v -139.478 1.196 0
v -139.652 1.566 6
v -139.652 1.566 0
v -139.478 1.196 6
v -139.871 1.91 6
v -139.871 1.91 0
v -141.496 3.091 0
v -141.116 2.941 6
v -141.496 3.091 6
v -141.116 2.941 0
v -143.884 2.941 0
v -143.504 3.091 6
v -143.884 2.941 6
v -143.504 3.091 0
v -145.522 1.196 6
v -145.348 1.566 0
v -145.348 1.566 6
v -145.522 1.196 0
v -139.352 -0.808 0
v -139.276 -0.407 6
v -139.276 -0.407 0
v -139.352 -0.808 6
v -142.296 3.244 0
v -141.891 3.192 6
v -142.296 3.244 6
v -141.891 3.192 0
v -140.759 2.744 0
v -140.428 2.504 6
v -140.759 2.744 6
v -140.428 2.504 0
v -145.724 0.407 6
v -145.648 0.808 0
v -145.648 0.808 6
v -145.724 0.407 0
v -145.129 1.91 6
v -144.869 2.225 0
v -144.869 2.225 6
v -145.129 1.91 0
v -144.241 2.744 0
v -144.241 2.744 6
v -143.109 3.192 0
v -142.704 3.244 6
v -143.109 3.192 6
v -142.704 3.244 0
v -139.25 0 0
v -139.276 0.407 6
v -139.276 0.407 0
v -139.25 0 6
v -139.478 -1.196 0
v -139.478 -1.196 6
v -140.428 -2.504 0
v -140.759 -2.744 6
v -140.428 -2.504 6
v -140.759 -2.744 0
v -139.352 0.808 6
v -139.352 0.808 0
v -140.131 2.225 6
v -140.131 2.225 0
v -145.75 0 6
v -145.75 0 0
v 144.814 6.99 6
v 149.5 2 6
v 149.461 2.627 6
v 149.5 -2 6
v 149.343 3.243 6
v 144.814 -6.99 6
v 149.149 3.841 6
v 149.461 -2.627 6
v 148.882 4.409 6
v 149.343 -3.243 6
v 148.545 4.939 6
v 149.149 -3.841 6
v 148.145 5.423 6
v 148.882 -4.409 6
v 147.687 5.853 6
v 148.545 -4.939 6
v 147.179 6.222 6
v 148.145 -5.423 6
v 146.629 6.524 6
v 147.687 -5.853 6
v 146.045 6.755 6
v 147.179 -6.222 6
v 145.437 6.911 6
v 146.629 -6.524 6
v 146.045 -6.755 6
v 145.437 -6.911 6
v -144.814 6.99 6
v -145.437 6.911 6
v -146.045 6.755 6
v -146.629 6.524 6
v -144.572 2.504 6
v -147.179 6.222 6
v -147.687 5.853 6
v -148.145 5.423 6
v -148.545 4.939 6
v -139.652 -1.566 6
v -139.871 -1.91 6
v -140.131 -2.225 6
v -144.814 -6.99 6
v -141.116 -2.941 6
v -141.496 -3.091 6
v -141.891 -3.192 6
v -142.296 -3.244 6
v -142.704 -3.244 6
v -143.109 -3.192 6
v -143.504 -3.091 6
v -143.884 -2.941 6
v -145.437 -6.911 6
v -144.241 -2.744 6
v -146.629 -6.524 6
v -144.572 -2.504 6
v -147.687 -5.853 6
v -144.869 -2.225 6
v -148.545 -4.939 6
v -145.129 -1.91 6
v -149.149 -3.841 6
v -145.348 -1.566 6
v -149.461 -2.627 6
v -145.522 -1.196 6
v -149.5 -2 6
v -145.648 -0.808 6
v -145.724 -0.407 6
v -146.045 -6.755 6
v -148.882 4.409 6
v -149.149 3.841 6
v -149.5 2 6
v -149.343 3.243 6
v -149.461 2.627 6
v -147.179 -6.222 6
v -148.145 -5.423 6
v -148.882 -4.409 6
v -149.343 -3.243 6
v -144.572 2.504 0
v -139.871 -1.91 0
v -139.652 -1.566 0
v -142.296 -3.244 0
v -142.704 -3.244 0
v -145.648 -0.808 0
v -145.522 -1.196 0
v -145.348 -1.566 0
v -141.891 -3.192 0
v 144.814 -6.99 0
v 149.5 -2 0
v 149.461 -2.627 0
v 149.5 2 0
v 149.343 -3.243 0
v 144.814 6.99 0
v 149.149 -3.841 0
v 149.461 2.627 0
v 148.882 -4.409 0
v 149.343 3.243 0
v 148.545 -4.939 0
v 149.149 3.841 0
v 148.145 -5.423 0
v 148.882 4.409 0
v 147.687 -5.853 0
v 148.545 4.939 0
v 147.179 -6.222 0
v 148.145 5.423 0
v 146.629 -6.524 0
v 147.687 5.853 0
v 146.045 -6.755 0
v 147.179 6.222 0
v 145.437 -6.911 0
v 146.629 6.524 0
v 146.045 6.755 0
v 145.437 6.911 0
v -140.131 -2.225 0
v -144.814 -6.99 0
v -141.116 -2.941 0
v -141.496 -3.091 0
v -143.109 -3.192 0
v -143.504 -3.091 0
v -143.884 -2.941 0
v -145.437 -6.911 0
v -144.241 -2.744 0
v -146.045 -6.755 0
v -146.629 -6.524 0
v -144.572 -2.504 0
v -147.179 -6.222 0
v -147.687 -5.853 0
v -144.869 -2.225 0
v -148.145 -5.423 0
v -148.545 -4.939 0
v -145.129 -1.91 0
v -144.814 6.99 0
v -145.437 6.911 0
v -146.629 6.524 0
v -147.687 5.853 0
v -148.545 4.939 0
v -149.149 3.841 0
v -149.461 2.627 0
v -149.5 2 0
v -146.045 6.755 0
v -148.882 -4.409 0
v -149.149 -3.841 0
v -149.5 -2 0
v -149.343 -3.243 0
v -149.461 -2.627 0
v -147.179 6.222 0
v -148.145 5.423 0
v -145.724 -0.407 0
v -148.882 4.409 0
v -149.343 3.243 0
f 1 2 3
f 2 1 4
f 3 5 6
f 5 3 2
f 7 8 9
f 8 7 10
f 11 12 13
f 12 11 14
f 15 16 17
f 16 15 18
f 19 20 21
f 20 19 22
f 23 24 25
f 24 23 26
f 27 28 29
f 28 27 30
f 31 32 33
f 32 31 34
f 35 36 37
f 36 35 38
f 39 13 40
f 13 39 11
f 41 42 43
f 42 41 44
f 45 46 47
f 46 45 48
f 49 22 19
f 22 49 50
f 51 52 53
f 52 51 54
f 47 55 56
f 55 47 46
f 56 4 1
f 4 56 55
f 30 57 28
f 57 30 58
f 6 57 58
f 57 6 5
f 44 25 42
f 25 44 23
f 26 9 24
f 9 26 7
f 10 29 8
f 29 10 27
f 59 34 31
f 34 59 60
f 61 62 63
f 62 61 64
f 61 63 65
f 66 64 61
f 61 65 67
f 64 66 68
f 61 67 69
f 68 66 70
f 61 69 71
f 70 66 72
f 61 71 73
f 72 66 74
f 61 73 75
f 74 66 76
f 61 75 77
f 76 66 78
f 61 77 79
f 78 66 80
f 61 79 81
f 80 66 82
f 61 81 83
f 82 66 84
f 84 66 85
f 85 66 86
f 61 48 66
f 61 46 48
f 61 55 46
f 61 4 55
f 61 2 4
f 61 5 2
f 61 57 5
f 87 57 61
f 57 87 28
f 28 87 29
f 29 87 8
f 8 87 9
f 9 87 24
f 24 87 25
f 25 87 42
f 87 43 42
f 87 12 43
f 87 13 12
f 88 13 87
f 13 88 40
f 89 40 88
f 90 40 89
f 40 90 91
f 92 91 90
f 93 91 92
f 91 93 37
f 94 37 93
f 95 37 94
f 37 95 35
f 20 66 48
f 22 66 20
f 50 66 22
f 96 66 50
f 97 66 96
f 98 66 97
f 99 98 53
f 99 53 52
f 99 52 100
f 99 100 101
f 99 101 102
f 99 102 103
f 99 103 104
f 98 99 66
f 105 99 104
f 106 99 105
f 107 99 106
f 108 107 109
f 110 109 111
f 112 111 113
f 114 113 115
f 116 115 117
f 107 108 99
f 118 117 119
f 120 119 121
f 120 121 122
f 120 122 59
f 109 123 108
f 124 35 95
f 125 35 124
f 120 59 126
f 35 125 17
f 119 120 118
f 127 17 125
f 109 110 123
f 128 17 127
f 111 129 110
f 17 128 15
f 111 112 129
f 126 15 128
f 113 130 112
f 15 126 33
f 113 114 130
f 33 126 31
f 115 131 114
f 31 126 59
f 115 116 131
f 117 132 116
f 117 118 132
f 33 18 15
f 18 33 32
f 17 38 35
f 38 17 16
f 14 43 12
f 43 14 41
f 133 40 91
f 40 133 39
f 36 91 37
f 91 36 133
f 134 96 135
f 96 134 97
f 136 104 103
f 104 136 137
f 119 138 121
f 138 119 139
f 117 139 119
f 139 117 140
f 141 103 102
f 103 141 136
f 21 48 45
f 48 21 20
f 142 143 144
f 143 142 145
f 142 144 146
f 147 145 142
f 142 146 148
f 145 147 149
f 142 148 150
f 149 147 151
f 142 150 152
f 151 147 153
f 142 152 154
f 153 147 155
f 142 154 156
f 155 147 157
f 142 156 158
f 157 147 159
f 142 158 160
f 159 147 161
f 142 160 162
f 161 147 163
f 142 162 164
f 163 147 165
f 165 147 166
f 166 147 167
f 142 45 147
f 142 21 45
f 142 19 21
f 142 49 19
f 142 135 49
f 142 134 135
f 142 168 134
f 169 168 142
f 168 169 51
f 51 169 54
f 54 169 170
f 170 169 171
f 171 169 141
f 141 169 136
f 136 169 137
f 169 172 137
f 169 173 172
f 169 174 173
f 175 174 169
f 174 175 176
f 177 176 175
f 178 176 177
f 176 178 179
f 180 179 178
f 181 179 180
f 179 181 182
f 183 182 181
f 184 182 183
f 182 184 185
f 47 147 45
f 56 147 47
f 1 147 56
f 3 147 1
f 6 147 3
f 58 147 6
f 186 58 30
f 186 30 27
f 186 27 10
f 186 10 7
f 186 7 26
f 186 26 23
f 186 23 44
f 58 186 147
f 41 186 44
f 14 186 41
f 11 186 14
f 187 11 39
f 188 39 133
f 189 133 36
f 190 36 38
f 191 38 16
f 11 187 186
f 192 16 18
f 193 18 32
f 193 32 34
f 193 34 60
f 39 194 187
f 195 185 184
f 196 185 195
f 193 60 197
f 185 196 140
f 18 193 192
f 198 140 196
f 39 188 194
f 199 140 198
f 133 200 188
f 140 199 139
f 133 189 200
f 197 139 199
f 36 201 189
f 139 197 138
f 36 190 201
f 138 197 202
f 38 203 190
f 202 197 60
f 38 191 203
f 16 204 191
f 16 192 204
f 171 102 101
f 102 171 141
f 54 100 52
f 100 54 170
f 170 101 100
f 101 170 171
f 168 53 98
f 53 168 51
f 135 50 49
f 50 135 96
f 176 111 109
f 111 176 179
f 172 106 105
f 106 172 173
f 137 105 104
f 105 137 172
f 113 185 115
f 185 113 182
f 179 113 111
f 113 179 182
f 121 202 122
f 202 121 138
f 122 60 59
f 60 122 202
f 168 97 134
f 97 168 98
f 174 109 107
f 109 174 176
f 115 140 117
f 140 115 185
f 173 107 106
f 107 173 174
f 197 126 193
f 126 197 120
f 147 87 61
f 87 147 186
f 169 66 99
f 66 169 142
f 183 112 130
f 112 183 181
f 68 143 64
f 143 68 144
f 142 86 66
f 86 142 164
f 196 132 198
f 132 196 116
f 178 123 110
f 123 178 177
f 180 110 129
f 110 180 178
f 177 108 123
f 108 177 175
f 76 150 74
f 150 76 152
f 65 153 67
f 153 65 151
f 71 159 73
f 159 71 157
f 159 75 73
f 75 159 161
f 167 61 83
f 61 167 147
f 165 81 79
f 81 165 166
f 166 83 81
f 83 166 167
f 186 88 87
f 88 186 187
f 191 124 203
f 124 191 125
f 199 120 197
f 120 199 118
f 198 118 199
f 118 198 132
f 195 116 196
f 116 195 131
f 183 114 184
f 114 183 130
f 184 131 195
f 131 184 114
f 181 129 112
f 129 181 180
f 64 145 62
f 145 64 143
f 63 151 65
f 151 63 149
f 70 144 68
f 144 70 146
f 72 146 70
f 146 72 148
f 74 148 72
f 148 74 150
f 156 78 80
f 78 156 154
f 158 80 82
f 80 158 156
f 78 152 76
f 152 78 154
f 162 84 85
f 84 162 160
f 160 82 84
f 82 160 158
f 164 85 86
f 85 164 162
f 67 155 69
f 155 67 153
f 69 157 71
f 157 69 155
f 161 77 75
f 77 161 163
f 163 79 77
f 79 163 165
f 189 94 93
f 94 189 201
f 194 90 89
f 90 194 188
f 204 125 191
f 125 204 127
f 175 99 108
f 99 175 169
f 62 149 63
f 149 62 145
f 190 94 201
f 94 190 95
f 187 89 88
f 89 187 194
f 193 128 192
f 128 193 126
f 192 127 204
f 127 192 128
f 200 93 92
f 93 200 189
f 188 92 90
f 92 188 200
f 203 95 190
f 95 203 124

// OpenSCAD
$fn = 50;


difference() {
	union() {
		hull() {
			translate(v = [-144.5000000000, 2.0000000000, 0]) {
				cylinder(h = 6, r = 5);
			}
			translate(v = [144.5000000000, 2.0000000000, 0]) {
				cylinder(h = 6, r = 5);
			}
			translate(v = [-144.5000000000, -2.0000000000, 0]) {
				cylinder(h = 6, r = 5);
			}
			translate(v = [144.5000000000, -2.0000000000, 0]) {
				cylinder(h = 6, r = 5);
			}
		}
	}
	union() {
		translate(v = [-142.5000000000, 0.0000000000, 0]) {
			cylinder(h = 6, r = 3.2500000000);
		}
		translate(v = [-142.5000000000, 0.0000000000, 0]) {
			cylinder(h = 6, r = 1.8000000000);
		}
		translate(v = [-142.5000000000, 0.0000000000, 0]) {
			cylinder(h = 6, r = 1.8000000000);
		}
		translate(v = [-142.5000000000, 0.0000000000, 0]) {
			cylinder(h = 6, r = 1.8000000000);
		}
	}
}
